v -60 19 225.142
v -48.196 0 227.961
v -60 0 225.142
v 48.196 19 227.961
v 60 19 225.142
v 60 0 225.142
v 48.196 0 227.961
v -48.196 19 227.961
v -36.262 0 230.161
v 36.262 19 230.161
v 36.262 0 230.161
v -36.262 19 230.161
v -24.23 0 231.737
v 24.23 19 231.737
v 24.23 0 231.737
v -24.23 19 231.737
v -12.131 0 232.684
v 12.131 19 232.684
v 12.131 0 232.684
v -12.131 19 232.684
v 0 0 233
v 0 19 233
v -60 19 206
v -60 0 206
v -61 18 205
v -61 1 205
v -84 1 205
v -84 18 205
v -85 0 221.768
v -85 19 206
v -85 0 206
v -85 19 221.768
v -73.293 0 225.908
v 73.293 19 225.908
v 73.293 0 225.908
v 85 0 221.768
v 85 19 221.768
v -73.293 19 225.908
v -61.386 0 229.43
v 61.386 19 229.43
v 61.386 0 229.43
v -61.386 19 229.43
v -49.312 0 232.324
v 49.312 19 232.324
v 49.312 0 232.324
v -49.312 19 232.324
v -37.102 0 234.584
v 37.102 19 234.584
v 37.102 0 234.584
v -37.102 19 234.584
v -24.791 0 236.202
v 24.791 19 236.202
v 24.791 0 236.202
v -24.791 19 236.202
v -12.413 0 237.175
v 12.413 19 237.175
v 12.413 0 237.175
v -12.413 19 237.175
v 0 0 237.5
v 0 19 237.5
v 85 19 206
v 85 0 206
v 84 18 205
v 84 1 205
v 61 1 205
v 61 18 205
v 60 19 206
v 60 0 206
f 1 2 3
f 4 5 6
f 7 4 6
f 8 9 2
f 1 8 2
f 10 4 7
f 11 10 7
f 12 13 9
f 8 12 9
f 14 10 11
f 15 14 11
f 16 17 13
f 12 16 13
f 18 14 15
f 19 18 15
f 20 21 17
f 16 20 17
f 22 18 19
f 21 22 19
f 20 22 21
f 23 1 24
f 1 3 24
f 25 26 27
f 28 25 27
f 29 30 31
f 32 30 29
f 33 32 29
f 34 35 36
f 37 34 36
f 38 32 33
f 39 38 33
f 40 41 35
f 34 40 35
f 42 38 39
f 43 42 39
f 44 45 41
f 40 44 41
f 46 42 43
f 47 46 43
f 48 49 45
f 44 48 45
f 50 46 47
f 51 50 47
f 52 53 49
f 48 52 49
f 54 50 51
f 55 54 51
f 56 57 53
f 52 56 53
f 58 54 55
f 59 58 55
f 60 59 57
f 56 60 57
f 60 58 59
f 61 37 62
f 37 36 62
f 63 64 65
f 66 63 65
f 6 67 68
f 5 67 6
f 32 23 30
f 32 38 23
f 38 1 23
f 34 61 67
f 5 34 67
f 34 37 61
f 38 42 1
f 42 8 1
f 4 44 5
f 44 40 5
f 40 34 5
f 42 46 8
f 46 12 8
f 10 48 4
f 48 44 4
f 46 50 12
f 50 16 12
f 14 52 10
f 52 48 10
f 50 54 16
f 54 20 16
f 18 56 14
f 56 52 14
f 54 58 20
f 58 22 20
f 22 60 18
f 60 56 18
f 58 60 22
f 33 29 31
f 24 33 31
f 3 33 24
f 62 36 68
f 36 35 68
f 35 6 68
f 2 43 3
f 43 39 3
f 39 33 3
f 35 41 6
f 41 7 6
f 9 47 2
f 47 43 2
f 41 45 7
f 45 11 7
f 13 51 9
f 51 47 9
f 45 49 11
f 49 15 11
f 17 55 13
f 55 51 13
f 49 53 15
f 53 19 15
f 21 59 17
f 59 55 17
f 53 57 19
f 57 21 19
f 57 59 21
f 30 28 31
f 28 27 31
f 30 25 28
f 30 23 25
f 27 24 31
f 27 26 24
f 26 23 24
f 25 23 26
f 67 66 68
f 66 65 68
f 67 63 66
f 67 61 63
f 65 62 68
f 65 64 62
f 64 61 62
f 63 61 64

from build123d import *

# Parameters (mm, degrees)
EXTRUDE_1_DEPTH = 19
CHAMFER_1_SIZE  = 1


with BuildPart() as part:
    # 草图1 → 凸台-拉伸1 (new body)
    with BuildSketch(Plane(origin=(0, 0, 0), x_dir=(1, 0, 0), z_dir=(0, 1, 0))):
        with BuildLine():
            Line((60, -225.142177301), (60, -205))
            Line((60, -205), (85, -205))
            Line((85, -205), (85, -221.768460336))
            ThreePointArc((85, -221.768460336), (0, -237.5), (-85, -221.768460336))
            Line((-85, -221.768460336), (-85, -205))
            Line((-85, -205), (-60, -205))
            Line((-60, -205), (-60, -225.142177301))
            ThreePointArc((-60, -225.142177301), (0, -233), (60, -225.142177301))
        make_face()
    extrude(amount=EXTRUDE_1_DEPTH)

    # 倒角1
    chamfer_1_edges = [part.edges().sort_by_distance(p)[0] for p in [
        (-72.5, 0, 205),
        (-72.5, 19, 205),
        (60, 9.5, 205),
        (85, 9.5, 205),
        (-85, 9.5, 205),
        (-60, 9.5, 205),
        (72.5, 19, 205),
        (72.5, 0, 205),
    ]]
    chamfer(chamfer_1_edges, length=CHAMFER_1_SIZE)


solid = part.part
